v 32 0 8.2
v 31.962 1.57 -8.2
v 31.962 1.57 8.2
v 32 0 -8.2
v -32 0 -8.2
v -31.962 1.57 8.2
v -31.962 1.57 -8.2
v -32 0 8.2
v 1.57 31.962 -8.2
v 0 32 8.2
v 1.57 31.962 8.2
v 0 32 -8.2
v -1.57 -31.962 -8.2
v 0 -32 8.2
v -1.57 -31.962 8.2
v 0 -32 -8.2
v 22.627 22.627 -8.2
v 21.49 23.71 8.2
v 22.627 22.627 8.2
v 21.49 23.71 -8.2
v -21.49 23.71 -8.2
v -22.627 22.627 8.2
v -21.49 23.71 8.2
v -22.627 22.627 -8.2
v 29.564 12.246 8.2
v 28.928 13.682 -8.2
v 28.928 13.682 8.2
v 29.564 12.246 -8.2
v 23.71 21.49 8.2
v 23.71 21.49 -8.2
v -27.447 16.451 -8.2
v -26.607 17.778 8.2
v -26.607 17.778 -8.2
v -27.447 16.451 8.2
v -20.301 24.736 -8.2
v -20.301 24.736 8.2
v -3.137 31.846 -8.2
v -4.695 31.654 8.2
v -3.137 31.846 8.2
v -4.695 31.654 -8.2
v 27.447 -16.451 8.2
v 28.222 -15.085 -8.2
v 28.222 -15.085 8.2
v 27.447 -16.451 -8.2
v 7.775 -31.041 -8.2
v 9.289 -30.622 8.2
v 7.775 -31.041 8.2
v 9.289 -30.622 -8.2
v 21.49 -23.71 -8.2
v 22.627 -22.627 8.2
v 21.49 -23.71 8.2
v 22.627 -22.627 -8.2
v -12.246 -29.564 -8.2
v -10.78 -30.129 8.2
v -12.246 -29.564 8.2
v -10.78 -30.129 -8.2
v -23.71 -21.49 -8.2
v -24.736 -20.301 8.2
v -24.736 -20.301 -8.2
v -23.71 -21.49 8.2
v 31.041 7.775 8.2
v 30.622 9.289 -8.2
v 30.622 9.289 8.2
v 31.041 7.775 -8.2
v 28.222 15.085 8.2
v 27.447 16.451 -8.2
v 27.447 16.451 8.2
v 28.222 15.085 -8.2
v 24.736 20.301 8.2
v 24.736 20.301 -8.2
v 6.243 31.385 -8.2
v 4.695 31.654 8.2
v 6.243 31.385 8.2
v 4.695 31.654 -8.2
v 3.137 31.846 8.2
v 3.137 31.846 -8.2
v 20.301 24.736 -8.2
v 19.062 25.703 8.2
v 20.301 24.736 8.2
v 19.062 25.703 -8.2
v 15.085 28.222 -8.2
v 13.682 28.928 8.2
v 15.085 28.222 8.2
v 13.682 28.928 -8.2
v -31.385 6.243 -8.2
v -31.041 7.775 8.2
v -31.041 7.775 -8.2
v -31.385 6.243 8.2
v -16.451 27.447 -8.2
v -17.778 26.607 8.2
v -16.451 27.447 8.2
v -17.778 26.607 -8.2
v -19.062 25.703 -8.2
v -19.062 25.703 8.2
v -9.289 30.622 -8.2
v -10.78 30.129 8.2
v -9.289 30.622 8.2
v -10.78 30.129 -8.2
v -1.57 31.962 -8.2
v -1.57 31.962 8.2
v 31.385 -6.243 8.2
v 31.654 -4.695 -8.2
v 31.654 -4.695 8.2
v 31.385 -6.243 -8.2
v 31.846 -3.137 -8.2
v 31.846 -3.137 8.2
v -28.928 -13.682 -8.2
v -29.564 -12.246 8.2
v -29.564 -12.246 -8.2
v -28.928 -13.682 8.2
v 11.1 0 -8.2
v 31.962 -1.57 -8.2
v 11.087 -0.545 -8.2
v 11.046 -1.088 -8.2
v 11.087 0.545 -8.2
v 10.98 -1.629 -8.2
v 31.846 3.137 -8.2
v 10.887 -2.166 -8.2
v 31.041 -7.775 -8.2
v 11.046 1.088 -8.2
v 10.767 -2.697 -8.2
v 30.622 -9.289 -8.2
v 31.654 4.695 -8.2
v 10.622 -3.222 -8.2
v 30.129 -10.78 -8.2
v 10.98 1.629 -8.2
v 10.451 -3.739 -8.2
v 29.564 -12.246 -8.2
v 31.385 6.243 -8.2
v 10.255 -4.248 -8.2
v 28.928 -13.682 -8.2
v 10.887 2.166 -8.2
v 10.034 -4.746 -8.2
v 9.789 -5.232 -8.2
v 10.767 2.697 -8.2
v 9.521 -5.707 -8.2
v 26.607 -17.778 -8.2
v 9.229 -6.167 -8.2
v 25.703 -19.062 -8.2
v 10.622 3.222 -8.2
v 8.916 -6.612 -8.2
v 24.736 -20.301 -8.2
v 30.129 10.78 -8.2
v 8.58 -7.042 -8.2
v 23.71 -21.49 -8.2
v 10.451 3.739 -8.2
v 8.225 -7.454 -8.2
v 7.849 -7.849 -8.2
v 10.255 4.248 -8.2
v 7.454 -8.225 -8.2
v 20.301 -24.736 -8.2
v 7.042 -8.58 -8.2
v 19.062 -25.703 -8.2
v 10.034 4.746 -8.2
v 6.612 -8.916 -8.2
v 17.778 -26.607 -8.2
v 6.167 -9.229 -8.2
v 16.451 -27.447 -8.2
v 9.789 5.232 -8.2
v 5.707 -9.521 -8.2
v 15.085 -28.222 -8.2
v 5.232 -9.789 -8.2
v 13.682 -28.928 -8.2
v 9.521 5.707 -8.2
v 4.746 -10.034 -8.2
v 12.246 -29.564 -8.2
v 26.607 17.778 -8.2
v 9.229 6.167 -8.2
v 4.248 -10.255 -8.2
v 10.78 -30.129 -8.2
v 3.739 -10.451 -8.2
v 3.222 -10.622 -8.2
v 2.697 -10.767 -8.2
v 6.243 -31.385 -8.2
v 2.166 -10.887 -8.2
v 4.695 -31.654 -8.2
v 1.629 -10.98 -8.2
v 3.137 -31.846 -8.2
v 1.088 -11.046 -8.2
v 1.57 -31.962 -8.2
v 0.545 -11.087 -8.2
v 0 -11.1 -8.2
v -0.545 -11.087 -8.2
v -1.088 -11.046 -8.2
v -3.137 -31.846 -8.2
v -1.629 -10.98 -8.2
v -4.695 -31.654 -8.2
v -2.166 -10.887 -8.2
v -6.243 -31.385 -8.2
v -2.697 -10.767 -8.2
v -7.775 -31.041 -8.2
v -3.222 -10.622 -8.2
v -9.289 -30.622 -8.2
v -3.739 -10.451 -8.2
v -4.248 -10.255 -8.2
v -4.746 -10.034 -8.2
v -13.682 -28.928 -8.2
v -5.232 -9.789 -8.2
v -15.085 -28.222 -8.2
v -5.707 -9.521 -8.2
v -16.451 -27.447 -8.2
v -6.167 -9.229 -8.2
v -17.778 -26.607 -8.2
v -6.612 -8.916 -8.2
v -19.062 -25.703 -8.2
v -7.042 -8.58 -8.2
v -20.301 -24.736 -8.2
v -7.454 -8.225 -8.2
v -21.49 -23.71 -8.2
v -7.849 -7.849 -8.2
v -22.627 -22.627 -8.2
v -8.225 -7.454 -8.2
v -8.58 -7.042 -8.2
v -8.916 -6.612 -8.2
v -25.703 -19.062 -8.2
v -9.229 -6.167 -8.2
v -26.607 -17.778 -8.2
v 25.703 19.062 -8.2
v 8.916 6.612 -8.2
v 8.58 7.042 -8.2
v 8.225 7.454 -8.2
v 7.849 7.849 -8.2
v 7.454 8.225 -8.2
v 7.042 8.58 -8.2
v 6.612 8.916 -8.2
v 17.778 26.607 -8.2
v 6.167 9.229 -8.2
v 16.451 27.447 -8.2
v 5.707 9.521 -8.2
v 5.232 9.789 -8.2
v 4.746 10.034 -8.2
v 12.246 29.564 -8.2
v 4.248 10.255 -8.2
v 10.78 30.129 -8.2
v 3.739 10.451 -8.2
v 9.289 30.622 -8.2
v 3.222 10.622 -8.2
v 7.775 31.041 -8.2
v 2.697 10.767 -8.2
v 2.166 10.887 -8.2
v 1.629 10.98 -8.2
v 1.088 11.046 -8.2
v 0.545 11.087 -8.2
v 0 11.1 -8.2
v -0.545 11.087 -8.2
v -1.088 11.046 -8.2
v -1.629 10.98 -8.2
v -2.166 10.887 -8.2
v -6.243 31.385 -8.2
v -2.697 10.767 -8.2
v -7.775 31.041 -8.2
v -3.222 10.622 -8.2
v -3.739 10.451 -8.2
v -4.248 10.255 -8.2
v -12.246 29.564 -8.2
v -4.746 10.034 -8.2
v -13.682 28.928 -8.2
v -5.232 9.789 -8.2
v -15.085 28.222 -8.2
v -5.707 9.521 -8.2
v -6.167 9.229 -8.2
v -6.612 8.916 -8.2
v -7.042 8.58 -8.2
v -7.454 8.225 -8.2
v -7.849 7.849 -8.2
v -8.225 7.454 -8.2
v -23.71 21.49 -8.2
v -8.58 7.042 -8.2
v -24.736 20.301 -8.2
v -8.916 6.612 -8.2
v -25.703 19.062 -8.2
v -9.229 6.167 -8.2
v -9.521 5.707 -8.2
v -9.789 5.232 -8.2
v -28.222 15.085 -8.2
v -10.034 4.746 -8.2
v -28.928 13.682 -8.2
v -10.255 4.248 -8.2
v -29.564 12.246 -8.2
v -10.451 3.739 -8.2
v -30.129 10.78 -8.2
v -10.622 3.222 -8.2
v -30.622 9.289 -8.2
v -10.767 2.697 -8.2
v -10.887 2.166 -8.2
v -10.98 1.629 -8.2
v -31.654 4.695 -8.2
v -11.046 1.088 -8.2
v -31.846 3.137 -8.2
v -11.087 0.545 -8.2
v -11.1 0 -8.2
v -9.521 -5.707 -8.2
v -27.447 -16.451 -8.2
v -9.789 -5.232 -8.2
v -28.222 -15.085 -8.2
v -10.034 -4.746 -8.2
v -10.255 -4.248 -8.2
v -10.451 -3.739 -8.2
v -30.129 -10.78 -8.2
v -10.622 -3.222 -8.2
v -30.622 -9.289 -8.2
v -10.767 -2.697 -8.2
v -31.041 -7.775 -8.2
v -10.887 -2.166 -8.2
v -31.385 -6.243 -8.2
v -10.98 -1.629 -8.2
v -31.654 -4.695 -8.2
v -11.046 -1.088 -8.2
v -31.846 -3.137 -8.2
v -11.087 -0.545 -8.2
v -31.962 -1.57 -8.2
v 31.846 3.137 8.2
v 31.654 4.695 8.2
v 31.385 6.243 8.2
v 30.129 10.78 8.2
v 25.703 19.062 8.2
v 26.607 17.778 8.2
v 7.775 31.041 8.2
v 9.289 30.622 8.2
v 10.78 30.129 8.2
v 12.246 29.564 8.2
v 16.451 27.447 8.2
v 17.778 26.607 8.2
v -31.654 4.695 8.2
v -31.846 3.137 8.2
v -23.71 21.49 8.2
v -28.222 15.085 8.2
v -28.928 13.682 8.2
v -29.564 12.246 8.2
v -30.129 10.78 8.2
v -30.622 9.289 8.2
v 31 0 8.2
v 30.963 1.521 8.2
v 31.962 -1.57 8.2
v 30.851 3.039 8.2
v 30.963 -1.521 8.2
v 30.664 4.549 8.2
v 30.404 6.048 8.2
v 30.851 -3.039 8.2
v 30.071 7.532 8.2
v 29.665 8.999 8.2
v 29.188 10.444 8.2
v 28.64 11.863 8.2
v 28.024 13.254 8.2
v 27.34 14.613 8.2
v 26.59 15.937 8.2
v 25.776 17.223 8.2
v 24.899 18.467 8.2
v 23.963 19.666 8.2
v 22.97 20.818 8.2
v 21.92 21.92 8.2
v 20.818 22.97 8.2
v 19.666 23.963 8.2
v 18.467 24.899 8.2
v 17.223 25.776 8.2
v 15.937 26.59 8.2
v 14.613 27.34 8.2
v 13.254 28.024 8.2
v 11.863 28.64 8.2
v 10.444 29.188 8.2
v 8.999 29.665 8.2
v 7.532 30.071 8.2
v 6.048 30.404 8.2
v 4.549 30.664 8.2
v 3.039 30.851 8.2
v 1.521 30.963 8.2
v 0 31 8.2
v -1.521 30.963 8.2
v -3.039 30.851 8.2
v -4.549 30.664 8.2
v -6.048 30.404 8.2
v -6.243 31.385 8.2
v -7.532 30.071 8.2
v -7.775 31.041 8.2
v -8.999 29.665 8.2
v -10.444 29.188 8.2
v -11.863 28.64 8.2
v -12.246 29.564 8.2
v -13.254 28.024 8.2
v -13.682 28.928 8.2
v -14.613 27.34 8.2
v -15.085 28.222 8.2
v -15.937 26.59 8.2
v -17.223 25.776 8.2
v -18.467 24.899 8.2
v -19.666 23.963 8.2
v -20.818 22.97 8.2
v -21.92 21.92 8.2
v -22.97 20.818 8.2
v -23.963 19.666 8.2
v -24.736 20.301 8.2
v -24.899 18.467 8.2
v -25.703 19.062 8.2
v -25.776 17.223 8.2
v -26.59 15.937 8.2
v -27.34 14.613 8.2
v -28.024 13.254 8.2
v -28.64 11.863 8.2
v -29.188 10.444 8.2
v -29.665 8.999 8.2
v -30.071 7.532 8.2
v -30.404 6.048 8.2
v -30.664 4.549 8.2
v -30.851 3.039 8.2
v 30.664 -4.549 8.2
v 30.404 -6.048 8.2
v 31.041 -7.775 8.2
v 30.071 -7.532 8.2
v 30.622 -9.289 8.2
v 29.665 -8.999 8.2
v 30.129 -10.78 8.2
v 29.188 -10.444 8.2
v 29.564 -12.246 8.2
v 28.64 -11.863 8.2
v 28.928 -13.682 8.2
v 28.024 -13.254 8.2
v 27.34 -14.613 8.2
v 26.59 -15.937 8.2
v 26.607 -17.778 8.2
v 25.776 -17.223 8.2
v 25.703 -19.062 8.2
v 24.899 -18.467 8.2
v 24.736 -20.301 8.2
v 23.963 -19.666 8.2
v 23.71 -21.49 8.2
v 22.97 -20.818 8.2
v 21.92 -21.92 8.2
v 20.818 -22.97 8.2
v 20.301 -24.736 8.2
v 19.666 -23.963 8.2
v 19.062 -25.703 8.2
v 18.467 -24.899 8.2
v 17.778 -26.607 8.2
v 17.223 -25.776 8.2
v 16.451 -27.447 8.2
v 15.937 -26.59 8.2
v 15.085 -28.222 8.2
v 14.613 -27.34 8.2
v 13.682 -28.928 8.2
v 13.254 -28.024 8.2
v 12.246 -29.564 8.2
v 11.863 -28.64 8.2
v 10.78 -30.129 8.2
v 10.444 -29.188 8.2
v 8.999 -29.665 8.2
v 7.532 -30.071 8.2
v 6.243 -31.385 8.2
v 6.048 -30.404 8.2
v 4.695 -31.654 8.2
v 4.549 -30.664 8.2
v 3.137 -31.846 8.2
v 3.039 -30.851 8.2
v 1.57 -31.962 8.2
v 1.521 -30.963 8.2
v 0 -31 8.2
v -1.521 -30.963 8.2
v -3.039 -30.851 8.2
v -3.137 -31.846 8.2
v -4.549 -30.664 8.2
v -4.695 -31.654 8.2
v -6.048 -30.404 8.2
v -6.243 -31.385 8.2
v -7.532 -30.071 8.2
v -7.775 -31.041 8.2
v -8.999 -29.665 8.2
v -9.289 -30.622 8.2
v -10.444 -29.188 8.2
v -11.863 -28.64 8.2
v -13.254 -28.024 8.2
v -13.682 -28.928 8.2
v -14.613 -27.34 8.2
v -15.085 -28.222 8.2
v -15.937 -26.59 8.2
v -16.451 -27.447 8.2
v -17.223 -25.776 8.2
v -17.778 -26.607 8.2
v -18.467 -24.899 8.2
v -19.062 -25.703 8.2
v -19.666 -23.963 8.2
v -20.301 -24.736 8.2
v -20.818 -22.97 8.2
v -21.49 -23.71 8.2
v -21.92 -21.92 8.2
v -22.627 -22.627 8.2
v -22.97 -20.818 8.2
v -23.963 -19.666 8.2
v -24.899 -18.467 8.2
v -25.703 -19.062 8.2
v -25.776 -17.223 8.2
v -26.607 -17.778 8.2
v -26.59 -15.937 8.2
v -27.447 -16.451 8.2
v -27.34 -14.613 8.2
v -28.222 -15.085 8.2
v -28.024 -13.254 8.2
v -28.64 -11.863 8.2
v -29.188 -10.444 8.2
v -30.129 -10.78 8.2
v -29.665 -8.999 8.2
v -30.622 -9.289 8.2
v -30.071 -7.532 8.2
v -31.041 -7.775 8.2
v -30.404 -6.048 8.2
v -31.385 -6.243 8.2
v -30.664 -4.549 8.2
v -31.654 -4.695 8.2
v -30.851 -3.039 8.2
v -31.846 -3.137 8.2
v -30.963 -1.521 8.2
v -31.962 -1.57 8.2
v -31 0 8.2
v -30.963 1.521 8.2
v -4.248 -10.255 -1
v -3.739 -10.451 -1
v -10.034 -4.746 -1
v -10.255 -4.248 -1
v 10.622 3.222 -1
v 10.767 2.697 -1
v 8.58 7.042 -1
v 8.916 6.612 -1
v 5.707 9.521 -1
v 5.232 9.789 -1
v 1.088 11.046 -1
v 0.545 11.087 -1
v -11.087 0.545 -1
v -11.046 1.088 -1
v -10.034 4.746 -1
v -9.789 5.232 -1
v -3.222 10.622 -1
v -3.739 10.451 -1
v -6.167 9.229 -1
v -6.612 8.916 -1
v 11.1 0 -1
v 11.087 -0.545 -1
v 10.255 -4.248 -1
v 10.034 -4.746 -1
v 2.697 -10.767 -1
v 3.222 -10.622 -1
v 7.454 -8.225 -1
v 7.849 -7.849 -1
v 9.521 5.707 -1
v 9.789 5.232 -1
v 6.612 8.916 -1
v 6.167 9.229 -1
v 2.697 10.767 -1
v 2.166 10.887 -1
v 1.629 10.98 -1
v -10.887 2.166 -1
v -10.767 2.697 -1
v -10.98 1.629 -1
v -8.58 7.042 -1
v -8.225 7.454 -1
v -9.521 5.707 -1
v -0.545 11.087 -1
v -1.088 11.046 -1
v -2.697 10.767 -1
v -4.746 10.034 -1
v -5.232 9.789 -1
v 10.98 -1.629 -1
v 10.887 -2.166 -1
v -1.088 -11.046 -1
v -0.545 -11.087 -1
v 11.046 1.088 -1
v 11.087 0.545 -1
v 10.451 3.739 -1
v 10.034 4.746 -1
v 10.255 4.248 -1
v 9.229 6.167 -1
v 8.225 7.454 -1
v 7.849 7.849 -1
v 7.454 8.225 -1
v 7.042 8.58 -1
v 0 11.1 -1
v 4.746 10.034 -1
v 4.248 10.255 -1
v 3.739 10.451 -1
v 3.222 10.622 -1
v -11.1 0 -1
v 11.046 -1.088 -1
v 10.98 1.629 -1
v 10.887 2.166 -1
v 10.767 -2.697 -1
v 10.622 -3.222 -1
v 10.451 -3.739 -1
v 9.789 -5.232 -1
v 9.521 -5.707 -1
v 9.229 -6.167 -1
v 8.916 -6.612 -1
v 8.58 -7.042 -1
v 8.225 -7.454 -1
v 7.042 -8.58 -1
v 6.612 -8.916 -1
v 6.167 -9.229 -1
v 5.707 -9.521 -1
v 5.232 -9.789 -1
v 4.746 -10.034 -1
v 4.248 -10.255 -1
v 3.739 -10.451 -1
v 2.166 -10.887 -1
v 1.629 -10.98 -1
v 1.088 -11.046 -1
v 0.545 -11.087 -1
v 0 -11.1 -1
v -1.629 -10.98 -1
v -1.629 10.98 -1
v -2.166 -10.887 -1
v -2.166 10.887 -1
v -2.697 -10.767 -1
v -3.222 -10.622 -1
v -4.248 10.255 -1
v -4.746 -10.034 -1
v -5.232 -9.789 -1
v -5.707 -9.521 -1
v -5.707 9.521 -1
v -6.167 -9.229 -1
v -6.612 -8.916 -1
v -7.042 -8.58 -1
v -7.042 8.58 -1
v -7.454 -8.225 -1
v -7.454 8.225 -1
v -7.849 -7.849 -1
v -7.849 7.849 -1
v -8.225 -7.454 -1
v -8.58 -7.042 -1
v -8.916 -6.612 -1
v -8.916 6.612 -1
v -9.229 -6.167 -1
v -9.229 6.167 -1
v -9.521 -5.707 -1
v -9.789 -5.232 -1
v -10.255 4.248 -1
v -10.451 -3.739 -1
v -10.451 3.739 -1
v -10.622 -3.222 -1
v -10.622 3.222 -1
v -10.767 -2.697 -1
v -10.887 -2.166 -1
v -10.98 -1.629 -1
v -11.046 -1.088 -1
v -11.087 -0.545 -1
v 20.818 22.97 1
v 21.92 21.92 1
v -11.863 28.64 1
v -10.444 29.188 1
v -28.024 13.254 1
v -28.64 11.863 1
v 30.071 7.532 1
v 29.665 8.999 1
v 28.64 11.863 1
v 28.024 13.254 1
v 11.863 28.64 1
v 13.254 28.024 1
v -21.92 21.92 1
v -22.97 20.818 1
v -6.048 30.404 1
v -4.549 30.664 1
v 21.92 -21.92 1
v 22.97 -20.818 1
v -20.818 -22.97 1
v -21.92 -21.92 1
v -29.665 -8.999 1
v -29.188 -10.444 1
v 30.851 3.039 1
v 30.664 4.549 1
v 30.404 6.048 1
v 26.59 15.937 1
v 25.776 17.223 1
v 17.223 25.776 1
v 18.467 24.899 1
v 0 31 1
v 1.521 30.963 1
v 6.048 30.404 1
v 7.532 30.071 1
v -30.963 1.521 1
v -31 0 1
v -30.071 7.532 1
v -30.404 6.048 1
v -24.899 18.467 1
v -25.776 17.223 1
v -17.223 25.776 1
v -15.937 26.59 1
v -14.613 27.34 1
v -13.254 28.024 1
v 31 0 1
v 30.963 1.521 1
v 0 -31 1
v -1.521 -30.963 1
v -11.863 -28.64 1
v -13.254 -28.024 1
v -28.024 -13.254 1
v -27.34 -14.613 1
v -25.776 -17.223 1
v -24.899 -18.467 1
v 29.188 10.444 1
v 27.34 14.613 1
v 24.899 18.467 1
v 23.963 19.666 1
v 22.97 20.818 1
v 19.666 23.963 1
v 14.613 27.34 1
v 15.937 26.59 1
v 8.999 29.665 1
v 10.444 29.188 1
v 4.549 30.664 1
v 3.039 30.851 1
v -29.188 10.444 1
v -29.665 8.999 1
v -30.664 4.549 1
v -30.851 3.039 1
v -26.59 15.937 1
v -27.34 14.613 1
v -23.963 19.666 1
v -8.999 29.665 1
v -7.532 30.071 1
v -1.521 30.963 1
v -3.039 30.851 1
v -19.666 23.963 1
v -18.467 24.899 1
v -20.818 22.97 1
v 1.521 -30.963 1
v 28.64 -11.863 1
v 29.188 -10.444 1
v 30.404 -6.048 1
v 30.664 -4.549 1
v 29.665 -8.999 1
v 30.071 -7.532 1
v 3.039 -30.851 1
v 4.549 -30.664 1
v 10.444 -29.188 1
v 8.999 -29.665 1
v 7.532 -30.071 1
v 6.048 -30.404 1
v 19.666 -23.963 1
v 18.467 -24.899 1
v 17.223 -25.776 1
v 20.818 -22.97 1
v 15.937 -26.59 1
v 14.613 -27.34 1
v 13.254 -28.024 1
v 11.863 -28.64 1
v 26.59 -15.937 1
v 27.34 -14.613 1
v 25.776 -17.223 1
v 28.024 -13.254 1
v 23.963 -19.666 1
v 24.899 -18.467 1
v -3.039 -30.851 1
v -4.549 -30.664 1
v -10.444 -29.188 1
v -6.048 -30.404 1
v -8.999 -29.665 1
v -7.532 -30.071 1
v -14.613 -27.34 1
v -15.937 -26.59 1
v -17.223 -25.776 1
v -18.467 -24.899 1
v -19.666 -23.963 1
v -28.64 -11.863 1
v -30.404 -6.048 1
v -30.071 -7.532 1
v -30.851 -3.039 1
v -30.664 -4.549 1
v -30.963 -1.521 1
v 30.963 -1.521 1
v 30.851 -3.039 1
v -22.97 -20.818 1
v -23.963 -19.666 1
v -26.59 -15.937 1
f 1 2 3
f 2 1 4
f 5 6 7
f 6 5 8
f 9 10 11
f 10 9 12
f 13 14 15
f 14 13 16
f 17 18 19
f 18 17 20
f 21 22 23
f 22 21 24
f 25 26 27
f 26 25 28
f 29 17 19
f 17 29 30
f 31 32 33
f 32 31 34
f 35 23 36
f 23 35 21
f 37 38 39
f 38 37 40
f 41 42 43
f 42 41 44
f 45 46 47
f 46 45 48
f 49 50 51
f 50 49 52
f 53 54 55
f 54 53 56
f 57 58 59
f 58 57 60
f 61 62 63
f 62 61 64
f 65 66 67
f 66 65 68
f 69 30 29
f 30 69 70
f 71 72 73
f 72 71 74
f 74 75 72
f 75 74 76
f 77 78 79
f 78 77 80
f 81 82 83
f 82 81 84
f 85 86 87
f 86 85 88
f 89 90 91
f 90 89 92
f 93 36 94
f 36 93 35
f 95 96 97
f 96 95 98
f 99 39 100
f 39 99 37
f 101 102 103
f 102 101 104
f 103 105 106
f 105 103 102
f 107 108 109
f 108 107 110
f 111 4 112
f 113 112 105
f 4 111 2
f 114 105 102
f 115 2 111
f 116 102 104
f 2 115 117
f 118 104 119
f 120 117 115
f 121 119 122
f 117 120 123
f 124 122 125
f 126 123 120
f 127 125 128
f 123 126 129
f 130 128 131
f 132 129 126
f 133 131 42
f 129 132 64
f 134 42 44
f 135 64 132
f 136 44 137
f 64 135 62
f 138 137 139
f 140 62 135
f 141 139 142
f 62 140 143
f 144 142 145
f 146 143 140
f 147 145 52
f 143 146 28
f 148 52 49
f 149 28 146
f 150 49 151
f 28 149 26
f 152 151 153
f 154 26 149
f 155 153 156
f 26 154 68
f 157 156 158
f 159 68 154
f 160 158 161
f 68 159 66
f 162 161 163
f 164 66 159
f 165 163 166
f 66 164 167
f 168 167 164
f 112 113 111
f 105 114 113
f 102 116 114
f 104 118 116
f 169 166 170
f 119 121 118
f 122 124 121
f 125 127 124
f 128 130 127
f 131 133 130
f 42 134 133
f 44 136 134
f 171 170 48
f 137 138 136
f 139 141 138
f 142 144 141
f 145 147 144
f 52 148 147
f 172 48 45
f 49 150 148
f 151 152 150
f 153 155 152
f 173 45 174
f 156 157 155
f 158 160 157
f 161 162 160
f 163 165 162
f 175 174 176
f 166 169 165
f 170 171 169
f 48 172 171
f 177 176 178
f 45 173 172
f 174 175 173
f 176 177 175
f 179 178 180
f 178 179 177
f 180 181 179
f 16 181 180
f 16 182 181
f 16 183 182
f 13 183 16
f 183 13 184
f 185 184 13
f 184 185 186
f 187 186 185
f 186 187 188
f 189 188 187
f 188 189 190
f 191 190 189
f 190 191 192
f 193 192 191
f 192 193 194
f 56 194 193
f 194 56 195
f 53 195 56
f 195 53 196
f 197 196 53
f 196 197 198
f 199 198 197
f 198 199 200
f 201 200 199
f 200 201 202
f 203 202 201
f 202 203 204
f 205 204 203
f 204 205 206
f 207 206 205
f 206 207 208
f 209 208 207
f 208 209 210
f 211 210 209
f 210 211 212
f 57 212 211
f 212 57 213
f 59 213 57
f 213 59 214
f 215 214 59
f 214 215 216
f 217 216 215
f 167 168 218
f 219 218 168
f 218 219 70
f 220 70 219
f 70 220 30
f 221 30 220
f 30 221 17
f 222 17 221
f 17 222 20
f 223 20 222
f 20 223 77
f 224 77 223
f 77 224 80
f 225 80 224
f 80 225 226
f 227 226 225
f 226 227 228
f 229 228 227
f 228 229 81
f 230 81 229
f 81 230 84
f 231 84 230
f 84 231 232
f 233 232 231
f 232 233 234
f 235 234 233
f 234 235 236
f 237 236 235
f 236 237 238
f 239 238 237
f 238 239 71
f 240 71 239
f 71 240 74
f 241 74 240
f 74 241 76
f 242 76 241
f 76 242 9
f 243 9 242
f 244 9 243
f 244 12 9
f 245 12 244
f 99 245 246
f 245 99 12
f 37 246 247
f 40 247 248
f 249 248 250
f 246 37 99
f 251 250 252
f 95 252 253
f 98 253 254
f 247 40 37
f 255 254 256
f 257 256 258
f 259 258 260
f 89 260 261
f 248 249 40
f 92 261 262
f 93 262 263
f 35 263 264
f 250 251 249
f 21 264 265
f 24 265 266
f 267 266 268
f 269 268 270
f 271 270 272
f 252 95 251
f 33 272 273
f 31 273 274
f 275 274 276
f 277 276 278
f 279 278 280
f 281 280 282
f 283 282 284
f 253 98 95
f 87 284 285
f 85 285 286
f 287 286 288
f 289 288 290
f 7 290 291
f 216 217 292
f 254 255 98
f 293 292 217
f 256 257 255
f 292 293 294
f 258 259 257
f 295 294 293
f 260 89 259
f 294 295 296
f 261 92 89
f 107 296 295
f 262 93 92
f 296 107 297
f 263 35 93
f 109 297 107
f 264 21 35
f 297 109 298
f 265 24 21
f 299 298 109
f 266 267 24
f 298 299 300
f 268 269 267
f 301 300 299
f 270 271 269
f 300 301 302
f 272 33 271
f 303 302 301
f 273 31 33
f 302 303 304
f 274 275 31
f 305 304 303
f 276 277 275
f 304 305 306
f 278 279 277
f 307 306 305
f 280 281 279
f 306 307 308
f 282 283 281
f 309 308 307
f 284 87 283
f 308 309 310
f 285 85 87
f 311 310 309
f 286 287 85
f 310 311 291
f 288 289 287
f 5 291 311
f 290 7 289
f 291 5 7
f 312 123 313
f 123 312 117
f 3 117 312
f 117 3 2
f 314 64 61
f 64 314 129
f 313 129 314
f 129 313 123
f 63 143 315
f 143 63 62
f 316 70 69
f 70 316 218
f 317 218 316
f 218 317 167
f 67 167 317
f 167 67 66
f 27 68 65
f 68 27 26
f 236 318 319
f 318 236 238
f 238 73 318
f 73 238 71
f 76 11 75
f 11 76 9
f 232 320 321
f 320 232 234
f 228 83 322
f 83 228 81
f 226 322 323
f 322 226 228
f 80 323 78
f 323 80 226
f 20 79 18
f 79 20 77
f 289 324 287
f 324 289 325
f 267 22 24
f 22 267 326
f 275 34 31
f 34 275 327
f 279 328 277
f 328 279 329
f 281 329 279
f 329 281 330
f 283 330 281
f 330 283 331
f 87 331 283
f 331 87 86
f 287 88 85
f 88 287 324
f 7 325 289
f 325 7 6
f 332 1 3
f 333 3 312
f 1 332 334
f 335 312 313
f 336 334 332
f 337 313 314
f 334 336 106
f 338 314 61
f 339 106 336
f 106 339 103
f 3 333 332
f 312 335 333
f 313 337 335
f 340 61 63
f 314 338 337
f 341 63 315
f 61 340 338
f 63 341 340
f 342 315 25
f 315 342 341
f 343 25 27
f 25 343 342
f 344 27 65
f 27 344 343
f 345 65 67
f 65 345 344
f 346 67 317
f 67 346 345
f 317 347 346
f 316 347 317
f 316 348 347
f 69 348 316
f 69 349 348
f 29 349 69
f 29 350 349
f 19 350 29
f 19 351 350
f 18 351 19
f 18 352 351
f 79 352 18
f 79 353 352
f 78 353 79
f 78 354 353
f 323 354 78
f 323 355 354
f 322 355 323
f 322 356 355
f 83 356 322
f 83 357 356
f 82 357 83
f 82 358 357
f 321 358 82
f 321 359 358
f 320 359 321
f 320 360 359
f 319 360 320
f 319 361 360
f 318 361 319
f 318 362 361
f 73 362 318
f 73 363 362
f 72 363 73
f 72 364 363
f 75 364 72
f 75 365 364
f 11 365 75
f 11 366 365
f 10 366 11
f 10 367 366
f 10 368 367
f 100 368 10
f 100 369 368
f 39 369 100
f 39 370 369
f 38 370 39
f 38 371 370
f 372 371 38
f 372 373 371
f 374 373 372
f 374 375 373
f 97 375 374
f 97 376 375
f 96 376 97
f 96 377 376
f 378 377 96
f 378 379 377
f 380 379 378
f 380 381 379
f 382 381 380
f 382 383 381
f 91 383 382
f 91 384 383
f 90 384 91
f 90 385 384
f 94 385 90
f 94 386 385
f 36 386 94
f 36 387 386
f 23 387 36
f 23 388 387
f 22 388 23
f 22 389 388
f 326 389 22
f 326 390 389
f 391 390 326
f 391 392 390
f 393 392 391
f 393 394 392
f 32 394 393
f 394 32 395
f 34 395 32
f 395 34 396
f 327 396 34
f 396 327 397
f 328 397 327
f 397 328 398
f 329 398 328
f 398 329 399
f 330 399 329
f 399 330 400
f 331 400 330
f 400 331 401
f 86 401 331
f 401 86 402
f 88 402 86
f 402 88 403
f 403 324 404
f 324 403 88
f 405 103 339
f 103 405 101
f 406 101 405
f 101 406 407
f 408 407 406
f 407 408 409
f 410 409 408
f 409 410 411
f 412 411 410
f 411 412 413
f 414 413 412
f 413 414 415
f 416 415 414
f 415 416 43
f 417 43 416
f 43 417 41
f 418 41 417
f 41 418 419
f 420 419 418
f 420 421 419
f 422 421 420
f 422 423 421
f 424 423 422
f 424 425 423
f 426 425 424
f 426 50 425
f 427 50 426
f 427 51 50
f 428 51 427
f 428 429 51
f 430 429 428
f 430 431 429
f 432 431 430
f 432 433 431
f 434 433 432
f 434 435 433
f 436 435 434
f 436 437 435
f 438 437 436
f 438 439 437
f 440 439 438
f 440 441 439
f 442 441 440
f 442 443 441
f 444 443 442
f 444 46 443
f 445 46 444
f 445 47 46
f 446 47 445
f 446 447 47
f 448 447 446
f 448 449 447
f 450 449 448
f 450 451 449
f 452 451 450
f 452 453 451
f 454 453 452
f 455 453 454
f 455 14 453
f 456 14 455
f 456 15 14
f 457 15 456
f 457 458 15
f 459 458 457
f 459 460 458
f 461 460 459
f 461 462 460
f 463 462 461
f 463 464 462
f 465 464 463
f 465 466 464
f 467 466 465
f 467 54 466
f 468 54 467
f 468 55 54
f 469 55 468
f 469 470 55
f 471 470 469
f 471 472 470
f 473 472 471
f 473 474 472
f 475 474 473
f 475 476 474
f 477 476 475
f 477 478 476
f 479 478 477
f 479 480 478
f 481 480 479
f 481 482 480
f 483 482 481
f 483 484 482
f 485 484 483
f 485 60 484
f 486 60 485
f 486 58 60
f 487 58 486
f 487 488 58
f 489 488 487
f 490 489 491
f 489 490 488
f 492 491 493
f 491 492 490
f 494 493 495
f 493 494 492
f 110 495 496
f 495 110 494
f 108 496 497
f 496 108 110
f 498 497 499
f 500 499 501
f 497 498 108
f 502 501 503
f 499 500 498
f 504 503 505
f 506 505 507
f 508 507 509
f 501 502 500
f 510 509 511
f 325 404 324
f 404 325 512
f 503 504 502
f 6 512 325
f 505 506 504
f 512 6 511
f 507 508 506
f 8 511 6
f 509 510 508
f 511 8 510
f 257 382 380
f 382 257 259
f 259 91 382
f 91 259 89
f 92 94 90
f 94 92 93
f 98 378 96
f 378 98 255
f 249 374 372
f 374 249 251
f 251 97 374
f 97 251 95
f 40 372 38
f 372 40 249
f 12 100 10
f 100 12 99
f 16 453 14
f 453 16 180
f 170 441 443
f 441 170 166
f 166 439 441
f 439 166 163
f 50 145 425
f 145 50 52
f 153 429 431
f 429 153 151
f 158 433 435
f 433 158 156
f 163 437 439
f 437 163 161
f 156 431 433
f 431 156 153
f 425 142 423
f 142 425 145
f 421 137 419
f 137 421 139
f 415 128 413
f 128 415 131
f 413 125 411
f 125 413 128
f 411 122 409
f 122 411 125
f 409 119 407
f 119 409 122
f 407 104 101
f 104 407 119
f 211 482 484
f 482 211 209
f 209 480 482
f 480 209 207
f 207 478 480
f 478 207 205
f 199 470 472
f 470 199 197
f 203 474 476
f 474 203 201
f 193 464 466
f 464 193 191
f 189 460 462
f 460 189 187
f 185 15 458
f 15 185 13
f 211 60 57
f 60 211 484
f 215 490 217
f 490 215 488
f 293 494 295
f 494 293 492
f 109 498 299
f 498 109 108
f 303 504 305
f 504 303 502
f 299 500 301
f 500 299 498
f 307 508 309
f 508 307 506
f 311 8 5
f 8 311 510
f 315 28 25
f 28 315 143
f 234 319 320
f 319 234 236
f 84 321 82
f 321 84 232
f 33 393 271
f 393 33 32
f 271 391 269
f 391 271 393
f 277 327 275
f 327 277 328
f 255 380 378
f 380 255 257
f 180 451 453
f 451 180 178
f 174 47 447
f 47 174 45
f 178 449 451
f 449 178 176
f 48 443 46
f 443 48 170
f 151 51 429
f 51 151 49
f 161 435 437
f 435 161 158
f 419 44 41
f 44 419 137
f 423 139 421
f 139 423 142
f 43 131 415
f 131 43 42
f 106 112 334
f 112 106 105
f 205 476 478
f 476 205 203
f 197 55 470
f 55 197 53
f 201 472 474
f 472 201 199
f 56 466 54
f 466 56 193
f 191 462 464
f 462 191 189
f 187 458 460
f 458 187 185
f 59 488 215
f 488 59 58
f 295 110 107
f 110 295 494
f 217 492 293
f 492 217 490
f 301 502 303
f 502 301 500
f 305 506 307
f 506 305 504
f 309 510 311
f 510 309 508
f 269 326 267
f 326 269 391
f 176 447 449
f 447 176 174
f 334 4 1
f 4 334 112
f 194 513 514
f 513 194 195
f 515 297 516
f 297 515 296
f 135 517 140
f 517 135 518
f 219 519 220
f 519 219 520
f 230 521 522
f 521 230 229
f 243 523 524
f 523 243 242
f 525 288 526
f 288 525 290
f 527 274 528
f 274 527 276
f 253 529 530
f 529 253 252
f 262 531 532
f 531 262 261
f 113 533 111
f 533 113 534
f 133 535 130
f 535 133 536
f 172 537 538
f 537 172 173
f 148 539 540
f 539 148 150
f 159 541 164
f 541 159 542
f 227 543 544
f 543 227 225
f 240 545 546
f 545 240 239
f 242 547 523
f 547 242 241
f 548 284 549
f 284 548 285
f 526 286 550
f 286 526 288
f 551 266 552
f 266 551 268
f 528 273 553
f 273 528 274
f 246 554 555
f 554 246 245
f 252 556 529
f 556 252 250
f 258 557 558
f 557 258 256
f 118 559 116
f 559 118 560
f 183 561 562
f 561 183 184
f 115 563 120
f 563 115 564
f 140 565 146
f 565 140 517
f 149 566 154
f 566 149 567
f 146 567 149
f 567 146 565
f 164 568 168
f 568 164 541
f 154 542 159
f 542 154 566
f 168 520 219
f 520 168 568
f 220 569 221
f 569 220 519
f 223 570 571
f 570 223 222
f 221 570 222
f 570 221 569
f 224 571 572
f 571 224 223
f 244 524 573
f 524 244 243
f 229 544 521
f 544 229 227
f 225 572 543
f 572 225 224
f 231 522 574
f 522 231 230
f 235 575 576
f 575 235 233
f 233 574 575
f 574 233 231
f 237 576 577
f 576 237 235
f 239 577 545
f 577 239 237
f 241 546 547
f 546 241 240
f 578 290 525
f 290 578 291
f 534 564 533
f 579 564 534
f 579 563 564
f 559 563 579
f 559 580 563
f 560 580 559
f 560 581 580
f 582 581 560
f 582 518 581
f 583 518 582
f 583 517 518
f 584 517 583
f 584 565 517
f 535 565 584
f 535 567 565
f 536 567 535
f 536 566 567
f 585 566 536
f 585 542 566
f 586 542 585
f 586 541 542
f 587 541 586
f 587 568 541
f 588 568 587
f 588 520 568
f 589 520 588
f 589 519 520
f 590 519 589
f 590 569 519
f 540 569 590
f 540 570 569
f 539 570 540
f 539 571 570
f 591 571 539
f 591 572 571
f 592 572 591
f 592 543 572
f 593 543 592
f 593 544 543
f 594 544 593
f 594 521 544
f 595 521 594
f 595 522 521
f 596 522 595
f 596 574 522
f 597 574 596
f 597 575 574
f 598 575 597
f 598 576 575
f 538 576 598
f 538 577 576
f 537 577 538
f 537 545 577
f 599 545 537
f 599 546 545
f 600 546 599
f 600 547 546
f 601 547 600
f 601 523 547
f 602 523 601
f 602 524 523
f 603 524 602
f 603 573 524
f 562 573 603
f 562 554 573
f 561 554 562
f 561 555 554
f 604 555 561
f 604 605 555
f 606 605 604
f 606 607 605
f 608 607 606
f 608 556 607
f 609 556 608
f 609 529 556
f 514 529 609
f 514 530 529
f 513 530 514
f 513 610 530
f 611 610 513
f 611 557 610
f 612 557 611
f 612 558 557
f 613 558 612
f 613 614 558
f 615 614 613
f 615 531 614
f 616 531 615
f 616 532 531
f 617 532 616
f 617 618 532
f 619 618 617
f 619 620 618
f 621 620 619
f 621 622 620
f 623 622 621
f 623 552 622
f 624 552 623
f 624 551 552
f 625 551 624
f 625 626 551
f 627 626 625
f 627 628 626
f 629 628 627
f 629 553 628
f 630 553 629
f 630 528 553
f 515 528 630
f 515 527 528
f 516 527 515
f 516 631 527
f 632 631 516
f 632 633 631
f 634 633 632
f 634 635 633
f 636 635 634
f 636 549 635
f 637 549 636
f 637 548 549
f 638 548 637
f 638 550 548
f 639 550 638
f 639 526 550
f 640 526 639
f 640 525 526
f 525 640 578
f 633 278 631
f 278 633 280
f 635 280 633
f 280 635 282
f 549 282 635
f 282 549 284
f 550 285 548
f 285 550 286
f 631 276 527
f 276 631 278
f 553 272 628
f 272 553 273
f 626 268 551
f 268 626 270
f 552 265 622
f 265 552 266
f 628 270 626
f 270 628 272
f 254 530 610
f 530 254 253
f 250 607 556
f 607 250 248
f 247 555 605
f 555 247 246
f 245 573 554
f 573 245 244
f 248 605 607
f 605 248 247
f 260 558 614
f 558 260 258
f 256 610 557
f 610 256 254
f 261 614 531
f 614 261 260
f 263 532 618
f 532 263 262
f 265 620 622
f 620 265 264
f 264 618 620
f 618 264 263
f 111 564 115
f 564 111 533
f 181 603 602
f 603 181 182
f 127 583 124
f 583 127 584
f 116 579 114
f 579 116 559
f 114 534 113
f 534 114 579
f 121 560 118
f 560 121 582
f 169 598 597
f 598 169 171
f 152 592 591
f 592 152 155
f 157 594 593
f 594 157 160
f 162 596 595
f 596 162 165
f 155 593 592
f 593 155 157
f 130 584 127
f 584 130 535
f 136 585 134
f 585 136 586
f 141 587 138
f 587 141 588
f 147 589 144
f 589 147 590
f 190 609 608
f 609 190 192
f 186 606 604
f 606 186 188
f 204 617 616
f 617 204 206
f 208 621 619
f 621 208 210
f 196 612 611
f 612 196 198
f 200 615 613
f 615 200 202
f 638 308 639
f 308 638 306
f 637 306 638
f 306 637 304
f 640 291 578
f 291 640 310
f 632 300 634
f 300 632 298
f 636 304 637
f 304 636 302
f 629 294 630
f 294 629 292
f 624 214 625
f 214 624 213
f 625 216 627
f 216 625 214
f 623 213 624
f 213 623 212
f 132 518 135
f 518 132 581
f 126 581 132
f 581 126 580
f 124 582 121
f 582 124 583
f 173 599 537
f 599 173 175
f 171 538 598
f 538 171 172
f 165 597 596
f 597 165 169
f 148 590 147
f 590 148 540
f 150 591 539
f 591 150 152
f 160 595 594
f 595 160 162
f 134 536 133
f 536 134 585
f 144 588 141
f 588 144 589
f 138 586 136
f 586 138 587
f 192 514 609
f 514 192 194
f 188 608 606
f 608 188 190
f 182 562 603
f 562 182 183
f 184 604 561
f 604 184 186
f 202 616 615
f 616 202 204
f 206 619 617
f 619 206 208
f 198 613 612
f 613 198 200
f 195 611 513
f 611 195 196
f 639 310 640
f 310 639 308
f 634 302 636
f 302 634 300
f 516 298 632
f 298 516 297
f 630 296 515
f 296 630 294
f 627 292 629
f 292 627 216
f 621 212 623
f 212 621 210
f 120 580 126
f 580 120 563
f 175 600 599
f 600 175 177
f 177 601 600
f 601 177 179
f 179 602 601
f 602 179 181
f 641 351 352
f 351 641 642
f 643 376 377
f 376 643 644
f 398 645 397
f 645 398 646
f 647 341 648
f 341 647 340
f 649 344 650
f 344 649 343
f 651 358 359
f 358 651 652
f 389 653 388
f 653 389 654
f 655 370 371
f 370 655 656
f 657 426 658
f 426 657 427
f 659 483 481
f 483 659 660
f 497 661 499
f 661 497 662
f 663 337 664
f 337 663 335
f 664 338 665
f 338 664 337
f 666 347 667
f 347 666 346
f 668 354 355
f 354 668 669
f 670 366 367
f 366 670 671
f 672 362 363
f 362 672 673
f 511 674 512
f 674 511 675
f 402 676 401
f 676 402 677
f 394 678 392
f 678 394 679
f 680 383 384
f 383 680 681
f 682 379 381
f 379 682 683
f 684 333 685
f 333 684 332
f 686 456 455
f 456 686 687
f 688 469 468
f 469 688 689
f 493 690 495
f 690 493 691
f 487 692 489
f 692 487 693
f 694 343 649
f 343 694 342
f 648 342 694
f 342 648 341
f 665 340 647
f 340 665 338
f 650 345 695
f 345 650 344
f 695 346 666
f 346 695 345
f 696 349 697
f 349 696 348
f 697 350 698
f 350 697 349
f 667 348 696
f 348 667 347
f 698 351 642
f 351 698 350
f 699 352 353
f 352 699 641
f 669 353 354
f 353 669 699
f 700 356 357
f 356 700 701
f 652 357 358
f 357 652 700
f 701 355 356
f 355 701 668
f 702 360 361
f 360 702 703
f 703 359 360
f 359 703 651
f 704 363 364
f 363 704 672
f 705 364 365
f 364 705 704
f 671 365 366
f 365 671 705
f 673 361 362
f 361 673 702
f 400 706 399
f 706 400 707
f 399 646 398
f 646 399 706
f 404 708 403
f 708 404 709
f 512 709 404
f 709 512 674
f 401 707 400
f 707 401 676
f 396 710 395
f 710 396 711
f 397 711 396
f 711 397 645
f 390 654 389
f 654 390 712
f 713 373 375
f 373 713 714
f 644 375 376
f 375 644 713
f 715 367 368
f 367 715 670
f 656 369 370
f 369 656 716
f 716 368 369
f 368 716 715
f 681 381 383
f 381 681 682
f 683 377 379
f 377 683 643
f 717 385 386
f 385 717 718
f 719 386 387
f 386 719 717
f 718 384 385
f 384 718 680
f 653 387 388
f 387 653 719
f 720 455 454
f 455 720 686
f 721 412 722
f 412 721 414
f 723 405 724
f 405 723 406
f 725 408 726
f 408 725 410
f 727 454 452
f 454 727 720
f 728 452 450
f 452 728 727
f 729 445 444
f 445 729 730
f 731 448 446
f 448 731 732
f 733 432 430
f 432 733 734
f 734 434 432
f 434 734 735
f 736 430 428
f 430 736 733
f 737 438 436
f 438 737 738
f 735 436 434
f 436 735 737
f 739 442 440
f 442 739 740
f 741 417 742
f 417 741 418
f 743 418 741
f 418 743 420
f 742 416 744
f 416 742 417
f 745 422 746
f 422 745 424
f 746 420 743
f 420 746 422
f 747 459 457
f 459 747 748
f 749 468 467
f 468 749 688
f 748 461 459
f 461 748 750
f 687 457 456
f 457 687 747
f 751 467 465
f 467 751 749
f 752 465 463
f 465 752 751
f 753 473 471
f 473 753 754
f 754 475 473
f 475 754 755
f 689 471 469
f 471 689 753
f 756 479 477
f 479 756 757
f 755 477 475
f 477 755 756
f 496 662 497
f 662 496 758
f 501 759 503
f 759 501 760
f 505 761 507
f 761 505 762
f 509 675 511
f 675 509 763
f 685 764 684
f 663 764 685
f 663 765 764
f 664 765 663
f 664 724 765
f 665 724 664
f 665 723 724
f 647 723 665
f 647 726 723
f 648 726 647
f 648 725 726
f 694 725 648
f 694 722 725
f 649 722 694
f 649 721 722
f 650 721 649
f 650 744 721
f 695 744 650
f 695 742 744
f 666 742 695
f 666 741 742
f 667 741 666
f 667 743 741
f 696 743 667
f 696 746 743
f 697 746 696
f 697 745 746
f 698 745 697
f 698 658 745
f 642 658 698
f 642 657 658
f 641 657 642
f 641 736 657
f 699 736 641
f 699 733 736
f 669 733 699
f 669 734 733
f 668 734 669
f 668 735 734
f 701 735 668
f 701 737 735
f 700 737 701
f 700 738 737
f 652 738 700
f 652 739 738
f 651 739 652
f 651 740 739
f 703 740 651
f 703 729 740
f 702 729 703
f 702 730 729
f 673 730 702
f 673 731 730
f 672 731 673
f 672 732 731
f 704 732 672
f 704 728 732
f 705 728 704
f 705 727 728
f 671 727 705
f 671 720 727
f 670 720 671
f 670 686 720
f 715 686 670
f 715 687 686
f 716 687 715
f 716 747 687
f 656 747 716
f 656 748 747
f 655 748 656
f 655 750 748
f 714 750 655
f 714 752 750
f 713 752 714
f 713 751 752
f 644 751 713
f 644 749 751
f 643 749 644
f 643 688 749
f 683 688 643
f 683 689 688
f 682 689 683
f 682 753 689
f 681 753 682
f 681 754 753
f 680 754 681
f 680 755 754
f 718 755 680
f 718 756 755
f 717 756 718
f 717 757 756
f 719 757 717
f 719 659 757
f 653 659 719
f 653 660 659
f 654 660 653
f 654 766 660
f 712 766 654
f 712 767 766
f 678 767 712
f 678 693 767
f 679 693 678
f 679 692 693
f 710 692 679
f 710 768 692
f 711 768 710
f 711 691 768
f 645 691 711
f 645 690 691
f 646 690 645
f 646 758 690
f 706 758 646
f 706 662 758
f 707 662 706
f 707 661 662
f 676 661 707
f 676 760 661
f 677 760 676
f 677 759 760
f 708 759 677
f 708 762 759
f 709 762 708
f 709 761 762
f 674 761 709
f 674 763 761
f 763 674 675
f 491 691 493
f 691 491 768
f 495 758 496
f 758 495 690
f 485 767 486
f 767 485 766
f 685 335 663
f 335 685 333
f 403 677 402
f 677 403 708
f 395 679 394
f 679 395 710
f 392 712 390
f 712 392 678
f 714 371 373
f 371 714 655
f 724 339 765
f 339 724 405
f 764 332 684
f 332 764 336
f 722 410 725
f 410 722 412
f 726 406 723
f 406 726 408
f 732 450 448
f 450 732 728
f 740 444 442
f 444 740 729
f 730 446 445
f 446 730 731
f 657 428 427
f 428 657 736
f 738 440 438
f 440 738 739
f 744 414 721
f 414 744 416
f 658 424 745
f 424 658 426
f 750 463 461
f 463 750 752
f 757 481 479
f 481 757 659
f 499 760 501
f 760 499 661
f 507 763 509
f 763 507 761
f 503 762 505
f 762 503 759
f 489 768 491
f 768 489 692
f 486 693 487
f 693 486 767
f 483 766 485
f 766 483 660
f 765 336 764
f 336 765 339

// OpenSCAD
$fn = $preview ? 32 : 128;

// Parameters
tolerance = 0.2;
// diameter = 192;
diameter = 64;
thickness = 2;
bearingInnerDiameter = 8;
bearingOuterDiameter = 22 + tolerance;
bearingHeight = 7 + tolerance;
lipHeight = bearingHeight;

difference() {
    difference() {
        cylinder(d=diameter, h=lipHeight + bearingHeight + thickness, center=true);
        translate([0, 0, -((lipHeight + thickness) / 2)]) {
            cylinder(d=bearingOuterDiameter, h=bearingHeight, center=true);
        }
    }
    translate([0, 0, (bearingHeight + thickness) / 2]) {
        cylinder(d=diameter - thickness, h=lipHeight, center=true);
    }
}
